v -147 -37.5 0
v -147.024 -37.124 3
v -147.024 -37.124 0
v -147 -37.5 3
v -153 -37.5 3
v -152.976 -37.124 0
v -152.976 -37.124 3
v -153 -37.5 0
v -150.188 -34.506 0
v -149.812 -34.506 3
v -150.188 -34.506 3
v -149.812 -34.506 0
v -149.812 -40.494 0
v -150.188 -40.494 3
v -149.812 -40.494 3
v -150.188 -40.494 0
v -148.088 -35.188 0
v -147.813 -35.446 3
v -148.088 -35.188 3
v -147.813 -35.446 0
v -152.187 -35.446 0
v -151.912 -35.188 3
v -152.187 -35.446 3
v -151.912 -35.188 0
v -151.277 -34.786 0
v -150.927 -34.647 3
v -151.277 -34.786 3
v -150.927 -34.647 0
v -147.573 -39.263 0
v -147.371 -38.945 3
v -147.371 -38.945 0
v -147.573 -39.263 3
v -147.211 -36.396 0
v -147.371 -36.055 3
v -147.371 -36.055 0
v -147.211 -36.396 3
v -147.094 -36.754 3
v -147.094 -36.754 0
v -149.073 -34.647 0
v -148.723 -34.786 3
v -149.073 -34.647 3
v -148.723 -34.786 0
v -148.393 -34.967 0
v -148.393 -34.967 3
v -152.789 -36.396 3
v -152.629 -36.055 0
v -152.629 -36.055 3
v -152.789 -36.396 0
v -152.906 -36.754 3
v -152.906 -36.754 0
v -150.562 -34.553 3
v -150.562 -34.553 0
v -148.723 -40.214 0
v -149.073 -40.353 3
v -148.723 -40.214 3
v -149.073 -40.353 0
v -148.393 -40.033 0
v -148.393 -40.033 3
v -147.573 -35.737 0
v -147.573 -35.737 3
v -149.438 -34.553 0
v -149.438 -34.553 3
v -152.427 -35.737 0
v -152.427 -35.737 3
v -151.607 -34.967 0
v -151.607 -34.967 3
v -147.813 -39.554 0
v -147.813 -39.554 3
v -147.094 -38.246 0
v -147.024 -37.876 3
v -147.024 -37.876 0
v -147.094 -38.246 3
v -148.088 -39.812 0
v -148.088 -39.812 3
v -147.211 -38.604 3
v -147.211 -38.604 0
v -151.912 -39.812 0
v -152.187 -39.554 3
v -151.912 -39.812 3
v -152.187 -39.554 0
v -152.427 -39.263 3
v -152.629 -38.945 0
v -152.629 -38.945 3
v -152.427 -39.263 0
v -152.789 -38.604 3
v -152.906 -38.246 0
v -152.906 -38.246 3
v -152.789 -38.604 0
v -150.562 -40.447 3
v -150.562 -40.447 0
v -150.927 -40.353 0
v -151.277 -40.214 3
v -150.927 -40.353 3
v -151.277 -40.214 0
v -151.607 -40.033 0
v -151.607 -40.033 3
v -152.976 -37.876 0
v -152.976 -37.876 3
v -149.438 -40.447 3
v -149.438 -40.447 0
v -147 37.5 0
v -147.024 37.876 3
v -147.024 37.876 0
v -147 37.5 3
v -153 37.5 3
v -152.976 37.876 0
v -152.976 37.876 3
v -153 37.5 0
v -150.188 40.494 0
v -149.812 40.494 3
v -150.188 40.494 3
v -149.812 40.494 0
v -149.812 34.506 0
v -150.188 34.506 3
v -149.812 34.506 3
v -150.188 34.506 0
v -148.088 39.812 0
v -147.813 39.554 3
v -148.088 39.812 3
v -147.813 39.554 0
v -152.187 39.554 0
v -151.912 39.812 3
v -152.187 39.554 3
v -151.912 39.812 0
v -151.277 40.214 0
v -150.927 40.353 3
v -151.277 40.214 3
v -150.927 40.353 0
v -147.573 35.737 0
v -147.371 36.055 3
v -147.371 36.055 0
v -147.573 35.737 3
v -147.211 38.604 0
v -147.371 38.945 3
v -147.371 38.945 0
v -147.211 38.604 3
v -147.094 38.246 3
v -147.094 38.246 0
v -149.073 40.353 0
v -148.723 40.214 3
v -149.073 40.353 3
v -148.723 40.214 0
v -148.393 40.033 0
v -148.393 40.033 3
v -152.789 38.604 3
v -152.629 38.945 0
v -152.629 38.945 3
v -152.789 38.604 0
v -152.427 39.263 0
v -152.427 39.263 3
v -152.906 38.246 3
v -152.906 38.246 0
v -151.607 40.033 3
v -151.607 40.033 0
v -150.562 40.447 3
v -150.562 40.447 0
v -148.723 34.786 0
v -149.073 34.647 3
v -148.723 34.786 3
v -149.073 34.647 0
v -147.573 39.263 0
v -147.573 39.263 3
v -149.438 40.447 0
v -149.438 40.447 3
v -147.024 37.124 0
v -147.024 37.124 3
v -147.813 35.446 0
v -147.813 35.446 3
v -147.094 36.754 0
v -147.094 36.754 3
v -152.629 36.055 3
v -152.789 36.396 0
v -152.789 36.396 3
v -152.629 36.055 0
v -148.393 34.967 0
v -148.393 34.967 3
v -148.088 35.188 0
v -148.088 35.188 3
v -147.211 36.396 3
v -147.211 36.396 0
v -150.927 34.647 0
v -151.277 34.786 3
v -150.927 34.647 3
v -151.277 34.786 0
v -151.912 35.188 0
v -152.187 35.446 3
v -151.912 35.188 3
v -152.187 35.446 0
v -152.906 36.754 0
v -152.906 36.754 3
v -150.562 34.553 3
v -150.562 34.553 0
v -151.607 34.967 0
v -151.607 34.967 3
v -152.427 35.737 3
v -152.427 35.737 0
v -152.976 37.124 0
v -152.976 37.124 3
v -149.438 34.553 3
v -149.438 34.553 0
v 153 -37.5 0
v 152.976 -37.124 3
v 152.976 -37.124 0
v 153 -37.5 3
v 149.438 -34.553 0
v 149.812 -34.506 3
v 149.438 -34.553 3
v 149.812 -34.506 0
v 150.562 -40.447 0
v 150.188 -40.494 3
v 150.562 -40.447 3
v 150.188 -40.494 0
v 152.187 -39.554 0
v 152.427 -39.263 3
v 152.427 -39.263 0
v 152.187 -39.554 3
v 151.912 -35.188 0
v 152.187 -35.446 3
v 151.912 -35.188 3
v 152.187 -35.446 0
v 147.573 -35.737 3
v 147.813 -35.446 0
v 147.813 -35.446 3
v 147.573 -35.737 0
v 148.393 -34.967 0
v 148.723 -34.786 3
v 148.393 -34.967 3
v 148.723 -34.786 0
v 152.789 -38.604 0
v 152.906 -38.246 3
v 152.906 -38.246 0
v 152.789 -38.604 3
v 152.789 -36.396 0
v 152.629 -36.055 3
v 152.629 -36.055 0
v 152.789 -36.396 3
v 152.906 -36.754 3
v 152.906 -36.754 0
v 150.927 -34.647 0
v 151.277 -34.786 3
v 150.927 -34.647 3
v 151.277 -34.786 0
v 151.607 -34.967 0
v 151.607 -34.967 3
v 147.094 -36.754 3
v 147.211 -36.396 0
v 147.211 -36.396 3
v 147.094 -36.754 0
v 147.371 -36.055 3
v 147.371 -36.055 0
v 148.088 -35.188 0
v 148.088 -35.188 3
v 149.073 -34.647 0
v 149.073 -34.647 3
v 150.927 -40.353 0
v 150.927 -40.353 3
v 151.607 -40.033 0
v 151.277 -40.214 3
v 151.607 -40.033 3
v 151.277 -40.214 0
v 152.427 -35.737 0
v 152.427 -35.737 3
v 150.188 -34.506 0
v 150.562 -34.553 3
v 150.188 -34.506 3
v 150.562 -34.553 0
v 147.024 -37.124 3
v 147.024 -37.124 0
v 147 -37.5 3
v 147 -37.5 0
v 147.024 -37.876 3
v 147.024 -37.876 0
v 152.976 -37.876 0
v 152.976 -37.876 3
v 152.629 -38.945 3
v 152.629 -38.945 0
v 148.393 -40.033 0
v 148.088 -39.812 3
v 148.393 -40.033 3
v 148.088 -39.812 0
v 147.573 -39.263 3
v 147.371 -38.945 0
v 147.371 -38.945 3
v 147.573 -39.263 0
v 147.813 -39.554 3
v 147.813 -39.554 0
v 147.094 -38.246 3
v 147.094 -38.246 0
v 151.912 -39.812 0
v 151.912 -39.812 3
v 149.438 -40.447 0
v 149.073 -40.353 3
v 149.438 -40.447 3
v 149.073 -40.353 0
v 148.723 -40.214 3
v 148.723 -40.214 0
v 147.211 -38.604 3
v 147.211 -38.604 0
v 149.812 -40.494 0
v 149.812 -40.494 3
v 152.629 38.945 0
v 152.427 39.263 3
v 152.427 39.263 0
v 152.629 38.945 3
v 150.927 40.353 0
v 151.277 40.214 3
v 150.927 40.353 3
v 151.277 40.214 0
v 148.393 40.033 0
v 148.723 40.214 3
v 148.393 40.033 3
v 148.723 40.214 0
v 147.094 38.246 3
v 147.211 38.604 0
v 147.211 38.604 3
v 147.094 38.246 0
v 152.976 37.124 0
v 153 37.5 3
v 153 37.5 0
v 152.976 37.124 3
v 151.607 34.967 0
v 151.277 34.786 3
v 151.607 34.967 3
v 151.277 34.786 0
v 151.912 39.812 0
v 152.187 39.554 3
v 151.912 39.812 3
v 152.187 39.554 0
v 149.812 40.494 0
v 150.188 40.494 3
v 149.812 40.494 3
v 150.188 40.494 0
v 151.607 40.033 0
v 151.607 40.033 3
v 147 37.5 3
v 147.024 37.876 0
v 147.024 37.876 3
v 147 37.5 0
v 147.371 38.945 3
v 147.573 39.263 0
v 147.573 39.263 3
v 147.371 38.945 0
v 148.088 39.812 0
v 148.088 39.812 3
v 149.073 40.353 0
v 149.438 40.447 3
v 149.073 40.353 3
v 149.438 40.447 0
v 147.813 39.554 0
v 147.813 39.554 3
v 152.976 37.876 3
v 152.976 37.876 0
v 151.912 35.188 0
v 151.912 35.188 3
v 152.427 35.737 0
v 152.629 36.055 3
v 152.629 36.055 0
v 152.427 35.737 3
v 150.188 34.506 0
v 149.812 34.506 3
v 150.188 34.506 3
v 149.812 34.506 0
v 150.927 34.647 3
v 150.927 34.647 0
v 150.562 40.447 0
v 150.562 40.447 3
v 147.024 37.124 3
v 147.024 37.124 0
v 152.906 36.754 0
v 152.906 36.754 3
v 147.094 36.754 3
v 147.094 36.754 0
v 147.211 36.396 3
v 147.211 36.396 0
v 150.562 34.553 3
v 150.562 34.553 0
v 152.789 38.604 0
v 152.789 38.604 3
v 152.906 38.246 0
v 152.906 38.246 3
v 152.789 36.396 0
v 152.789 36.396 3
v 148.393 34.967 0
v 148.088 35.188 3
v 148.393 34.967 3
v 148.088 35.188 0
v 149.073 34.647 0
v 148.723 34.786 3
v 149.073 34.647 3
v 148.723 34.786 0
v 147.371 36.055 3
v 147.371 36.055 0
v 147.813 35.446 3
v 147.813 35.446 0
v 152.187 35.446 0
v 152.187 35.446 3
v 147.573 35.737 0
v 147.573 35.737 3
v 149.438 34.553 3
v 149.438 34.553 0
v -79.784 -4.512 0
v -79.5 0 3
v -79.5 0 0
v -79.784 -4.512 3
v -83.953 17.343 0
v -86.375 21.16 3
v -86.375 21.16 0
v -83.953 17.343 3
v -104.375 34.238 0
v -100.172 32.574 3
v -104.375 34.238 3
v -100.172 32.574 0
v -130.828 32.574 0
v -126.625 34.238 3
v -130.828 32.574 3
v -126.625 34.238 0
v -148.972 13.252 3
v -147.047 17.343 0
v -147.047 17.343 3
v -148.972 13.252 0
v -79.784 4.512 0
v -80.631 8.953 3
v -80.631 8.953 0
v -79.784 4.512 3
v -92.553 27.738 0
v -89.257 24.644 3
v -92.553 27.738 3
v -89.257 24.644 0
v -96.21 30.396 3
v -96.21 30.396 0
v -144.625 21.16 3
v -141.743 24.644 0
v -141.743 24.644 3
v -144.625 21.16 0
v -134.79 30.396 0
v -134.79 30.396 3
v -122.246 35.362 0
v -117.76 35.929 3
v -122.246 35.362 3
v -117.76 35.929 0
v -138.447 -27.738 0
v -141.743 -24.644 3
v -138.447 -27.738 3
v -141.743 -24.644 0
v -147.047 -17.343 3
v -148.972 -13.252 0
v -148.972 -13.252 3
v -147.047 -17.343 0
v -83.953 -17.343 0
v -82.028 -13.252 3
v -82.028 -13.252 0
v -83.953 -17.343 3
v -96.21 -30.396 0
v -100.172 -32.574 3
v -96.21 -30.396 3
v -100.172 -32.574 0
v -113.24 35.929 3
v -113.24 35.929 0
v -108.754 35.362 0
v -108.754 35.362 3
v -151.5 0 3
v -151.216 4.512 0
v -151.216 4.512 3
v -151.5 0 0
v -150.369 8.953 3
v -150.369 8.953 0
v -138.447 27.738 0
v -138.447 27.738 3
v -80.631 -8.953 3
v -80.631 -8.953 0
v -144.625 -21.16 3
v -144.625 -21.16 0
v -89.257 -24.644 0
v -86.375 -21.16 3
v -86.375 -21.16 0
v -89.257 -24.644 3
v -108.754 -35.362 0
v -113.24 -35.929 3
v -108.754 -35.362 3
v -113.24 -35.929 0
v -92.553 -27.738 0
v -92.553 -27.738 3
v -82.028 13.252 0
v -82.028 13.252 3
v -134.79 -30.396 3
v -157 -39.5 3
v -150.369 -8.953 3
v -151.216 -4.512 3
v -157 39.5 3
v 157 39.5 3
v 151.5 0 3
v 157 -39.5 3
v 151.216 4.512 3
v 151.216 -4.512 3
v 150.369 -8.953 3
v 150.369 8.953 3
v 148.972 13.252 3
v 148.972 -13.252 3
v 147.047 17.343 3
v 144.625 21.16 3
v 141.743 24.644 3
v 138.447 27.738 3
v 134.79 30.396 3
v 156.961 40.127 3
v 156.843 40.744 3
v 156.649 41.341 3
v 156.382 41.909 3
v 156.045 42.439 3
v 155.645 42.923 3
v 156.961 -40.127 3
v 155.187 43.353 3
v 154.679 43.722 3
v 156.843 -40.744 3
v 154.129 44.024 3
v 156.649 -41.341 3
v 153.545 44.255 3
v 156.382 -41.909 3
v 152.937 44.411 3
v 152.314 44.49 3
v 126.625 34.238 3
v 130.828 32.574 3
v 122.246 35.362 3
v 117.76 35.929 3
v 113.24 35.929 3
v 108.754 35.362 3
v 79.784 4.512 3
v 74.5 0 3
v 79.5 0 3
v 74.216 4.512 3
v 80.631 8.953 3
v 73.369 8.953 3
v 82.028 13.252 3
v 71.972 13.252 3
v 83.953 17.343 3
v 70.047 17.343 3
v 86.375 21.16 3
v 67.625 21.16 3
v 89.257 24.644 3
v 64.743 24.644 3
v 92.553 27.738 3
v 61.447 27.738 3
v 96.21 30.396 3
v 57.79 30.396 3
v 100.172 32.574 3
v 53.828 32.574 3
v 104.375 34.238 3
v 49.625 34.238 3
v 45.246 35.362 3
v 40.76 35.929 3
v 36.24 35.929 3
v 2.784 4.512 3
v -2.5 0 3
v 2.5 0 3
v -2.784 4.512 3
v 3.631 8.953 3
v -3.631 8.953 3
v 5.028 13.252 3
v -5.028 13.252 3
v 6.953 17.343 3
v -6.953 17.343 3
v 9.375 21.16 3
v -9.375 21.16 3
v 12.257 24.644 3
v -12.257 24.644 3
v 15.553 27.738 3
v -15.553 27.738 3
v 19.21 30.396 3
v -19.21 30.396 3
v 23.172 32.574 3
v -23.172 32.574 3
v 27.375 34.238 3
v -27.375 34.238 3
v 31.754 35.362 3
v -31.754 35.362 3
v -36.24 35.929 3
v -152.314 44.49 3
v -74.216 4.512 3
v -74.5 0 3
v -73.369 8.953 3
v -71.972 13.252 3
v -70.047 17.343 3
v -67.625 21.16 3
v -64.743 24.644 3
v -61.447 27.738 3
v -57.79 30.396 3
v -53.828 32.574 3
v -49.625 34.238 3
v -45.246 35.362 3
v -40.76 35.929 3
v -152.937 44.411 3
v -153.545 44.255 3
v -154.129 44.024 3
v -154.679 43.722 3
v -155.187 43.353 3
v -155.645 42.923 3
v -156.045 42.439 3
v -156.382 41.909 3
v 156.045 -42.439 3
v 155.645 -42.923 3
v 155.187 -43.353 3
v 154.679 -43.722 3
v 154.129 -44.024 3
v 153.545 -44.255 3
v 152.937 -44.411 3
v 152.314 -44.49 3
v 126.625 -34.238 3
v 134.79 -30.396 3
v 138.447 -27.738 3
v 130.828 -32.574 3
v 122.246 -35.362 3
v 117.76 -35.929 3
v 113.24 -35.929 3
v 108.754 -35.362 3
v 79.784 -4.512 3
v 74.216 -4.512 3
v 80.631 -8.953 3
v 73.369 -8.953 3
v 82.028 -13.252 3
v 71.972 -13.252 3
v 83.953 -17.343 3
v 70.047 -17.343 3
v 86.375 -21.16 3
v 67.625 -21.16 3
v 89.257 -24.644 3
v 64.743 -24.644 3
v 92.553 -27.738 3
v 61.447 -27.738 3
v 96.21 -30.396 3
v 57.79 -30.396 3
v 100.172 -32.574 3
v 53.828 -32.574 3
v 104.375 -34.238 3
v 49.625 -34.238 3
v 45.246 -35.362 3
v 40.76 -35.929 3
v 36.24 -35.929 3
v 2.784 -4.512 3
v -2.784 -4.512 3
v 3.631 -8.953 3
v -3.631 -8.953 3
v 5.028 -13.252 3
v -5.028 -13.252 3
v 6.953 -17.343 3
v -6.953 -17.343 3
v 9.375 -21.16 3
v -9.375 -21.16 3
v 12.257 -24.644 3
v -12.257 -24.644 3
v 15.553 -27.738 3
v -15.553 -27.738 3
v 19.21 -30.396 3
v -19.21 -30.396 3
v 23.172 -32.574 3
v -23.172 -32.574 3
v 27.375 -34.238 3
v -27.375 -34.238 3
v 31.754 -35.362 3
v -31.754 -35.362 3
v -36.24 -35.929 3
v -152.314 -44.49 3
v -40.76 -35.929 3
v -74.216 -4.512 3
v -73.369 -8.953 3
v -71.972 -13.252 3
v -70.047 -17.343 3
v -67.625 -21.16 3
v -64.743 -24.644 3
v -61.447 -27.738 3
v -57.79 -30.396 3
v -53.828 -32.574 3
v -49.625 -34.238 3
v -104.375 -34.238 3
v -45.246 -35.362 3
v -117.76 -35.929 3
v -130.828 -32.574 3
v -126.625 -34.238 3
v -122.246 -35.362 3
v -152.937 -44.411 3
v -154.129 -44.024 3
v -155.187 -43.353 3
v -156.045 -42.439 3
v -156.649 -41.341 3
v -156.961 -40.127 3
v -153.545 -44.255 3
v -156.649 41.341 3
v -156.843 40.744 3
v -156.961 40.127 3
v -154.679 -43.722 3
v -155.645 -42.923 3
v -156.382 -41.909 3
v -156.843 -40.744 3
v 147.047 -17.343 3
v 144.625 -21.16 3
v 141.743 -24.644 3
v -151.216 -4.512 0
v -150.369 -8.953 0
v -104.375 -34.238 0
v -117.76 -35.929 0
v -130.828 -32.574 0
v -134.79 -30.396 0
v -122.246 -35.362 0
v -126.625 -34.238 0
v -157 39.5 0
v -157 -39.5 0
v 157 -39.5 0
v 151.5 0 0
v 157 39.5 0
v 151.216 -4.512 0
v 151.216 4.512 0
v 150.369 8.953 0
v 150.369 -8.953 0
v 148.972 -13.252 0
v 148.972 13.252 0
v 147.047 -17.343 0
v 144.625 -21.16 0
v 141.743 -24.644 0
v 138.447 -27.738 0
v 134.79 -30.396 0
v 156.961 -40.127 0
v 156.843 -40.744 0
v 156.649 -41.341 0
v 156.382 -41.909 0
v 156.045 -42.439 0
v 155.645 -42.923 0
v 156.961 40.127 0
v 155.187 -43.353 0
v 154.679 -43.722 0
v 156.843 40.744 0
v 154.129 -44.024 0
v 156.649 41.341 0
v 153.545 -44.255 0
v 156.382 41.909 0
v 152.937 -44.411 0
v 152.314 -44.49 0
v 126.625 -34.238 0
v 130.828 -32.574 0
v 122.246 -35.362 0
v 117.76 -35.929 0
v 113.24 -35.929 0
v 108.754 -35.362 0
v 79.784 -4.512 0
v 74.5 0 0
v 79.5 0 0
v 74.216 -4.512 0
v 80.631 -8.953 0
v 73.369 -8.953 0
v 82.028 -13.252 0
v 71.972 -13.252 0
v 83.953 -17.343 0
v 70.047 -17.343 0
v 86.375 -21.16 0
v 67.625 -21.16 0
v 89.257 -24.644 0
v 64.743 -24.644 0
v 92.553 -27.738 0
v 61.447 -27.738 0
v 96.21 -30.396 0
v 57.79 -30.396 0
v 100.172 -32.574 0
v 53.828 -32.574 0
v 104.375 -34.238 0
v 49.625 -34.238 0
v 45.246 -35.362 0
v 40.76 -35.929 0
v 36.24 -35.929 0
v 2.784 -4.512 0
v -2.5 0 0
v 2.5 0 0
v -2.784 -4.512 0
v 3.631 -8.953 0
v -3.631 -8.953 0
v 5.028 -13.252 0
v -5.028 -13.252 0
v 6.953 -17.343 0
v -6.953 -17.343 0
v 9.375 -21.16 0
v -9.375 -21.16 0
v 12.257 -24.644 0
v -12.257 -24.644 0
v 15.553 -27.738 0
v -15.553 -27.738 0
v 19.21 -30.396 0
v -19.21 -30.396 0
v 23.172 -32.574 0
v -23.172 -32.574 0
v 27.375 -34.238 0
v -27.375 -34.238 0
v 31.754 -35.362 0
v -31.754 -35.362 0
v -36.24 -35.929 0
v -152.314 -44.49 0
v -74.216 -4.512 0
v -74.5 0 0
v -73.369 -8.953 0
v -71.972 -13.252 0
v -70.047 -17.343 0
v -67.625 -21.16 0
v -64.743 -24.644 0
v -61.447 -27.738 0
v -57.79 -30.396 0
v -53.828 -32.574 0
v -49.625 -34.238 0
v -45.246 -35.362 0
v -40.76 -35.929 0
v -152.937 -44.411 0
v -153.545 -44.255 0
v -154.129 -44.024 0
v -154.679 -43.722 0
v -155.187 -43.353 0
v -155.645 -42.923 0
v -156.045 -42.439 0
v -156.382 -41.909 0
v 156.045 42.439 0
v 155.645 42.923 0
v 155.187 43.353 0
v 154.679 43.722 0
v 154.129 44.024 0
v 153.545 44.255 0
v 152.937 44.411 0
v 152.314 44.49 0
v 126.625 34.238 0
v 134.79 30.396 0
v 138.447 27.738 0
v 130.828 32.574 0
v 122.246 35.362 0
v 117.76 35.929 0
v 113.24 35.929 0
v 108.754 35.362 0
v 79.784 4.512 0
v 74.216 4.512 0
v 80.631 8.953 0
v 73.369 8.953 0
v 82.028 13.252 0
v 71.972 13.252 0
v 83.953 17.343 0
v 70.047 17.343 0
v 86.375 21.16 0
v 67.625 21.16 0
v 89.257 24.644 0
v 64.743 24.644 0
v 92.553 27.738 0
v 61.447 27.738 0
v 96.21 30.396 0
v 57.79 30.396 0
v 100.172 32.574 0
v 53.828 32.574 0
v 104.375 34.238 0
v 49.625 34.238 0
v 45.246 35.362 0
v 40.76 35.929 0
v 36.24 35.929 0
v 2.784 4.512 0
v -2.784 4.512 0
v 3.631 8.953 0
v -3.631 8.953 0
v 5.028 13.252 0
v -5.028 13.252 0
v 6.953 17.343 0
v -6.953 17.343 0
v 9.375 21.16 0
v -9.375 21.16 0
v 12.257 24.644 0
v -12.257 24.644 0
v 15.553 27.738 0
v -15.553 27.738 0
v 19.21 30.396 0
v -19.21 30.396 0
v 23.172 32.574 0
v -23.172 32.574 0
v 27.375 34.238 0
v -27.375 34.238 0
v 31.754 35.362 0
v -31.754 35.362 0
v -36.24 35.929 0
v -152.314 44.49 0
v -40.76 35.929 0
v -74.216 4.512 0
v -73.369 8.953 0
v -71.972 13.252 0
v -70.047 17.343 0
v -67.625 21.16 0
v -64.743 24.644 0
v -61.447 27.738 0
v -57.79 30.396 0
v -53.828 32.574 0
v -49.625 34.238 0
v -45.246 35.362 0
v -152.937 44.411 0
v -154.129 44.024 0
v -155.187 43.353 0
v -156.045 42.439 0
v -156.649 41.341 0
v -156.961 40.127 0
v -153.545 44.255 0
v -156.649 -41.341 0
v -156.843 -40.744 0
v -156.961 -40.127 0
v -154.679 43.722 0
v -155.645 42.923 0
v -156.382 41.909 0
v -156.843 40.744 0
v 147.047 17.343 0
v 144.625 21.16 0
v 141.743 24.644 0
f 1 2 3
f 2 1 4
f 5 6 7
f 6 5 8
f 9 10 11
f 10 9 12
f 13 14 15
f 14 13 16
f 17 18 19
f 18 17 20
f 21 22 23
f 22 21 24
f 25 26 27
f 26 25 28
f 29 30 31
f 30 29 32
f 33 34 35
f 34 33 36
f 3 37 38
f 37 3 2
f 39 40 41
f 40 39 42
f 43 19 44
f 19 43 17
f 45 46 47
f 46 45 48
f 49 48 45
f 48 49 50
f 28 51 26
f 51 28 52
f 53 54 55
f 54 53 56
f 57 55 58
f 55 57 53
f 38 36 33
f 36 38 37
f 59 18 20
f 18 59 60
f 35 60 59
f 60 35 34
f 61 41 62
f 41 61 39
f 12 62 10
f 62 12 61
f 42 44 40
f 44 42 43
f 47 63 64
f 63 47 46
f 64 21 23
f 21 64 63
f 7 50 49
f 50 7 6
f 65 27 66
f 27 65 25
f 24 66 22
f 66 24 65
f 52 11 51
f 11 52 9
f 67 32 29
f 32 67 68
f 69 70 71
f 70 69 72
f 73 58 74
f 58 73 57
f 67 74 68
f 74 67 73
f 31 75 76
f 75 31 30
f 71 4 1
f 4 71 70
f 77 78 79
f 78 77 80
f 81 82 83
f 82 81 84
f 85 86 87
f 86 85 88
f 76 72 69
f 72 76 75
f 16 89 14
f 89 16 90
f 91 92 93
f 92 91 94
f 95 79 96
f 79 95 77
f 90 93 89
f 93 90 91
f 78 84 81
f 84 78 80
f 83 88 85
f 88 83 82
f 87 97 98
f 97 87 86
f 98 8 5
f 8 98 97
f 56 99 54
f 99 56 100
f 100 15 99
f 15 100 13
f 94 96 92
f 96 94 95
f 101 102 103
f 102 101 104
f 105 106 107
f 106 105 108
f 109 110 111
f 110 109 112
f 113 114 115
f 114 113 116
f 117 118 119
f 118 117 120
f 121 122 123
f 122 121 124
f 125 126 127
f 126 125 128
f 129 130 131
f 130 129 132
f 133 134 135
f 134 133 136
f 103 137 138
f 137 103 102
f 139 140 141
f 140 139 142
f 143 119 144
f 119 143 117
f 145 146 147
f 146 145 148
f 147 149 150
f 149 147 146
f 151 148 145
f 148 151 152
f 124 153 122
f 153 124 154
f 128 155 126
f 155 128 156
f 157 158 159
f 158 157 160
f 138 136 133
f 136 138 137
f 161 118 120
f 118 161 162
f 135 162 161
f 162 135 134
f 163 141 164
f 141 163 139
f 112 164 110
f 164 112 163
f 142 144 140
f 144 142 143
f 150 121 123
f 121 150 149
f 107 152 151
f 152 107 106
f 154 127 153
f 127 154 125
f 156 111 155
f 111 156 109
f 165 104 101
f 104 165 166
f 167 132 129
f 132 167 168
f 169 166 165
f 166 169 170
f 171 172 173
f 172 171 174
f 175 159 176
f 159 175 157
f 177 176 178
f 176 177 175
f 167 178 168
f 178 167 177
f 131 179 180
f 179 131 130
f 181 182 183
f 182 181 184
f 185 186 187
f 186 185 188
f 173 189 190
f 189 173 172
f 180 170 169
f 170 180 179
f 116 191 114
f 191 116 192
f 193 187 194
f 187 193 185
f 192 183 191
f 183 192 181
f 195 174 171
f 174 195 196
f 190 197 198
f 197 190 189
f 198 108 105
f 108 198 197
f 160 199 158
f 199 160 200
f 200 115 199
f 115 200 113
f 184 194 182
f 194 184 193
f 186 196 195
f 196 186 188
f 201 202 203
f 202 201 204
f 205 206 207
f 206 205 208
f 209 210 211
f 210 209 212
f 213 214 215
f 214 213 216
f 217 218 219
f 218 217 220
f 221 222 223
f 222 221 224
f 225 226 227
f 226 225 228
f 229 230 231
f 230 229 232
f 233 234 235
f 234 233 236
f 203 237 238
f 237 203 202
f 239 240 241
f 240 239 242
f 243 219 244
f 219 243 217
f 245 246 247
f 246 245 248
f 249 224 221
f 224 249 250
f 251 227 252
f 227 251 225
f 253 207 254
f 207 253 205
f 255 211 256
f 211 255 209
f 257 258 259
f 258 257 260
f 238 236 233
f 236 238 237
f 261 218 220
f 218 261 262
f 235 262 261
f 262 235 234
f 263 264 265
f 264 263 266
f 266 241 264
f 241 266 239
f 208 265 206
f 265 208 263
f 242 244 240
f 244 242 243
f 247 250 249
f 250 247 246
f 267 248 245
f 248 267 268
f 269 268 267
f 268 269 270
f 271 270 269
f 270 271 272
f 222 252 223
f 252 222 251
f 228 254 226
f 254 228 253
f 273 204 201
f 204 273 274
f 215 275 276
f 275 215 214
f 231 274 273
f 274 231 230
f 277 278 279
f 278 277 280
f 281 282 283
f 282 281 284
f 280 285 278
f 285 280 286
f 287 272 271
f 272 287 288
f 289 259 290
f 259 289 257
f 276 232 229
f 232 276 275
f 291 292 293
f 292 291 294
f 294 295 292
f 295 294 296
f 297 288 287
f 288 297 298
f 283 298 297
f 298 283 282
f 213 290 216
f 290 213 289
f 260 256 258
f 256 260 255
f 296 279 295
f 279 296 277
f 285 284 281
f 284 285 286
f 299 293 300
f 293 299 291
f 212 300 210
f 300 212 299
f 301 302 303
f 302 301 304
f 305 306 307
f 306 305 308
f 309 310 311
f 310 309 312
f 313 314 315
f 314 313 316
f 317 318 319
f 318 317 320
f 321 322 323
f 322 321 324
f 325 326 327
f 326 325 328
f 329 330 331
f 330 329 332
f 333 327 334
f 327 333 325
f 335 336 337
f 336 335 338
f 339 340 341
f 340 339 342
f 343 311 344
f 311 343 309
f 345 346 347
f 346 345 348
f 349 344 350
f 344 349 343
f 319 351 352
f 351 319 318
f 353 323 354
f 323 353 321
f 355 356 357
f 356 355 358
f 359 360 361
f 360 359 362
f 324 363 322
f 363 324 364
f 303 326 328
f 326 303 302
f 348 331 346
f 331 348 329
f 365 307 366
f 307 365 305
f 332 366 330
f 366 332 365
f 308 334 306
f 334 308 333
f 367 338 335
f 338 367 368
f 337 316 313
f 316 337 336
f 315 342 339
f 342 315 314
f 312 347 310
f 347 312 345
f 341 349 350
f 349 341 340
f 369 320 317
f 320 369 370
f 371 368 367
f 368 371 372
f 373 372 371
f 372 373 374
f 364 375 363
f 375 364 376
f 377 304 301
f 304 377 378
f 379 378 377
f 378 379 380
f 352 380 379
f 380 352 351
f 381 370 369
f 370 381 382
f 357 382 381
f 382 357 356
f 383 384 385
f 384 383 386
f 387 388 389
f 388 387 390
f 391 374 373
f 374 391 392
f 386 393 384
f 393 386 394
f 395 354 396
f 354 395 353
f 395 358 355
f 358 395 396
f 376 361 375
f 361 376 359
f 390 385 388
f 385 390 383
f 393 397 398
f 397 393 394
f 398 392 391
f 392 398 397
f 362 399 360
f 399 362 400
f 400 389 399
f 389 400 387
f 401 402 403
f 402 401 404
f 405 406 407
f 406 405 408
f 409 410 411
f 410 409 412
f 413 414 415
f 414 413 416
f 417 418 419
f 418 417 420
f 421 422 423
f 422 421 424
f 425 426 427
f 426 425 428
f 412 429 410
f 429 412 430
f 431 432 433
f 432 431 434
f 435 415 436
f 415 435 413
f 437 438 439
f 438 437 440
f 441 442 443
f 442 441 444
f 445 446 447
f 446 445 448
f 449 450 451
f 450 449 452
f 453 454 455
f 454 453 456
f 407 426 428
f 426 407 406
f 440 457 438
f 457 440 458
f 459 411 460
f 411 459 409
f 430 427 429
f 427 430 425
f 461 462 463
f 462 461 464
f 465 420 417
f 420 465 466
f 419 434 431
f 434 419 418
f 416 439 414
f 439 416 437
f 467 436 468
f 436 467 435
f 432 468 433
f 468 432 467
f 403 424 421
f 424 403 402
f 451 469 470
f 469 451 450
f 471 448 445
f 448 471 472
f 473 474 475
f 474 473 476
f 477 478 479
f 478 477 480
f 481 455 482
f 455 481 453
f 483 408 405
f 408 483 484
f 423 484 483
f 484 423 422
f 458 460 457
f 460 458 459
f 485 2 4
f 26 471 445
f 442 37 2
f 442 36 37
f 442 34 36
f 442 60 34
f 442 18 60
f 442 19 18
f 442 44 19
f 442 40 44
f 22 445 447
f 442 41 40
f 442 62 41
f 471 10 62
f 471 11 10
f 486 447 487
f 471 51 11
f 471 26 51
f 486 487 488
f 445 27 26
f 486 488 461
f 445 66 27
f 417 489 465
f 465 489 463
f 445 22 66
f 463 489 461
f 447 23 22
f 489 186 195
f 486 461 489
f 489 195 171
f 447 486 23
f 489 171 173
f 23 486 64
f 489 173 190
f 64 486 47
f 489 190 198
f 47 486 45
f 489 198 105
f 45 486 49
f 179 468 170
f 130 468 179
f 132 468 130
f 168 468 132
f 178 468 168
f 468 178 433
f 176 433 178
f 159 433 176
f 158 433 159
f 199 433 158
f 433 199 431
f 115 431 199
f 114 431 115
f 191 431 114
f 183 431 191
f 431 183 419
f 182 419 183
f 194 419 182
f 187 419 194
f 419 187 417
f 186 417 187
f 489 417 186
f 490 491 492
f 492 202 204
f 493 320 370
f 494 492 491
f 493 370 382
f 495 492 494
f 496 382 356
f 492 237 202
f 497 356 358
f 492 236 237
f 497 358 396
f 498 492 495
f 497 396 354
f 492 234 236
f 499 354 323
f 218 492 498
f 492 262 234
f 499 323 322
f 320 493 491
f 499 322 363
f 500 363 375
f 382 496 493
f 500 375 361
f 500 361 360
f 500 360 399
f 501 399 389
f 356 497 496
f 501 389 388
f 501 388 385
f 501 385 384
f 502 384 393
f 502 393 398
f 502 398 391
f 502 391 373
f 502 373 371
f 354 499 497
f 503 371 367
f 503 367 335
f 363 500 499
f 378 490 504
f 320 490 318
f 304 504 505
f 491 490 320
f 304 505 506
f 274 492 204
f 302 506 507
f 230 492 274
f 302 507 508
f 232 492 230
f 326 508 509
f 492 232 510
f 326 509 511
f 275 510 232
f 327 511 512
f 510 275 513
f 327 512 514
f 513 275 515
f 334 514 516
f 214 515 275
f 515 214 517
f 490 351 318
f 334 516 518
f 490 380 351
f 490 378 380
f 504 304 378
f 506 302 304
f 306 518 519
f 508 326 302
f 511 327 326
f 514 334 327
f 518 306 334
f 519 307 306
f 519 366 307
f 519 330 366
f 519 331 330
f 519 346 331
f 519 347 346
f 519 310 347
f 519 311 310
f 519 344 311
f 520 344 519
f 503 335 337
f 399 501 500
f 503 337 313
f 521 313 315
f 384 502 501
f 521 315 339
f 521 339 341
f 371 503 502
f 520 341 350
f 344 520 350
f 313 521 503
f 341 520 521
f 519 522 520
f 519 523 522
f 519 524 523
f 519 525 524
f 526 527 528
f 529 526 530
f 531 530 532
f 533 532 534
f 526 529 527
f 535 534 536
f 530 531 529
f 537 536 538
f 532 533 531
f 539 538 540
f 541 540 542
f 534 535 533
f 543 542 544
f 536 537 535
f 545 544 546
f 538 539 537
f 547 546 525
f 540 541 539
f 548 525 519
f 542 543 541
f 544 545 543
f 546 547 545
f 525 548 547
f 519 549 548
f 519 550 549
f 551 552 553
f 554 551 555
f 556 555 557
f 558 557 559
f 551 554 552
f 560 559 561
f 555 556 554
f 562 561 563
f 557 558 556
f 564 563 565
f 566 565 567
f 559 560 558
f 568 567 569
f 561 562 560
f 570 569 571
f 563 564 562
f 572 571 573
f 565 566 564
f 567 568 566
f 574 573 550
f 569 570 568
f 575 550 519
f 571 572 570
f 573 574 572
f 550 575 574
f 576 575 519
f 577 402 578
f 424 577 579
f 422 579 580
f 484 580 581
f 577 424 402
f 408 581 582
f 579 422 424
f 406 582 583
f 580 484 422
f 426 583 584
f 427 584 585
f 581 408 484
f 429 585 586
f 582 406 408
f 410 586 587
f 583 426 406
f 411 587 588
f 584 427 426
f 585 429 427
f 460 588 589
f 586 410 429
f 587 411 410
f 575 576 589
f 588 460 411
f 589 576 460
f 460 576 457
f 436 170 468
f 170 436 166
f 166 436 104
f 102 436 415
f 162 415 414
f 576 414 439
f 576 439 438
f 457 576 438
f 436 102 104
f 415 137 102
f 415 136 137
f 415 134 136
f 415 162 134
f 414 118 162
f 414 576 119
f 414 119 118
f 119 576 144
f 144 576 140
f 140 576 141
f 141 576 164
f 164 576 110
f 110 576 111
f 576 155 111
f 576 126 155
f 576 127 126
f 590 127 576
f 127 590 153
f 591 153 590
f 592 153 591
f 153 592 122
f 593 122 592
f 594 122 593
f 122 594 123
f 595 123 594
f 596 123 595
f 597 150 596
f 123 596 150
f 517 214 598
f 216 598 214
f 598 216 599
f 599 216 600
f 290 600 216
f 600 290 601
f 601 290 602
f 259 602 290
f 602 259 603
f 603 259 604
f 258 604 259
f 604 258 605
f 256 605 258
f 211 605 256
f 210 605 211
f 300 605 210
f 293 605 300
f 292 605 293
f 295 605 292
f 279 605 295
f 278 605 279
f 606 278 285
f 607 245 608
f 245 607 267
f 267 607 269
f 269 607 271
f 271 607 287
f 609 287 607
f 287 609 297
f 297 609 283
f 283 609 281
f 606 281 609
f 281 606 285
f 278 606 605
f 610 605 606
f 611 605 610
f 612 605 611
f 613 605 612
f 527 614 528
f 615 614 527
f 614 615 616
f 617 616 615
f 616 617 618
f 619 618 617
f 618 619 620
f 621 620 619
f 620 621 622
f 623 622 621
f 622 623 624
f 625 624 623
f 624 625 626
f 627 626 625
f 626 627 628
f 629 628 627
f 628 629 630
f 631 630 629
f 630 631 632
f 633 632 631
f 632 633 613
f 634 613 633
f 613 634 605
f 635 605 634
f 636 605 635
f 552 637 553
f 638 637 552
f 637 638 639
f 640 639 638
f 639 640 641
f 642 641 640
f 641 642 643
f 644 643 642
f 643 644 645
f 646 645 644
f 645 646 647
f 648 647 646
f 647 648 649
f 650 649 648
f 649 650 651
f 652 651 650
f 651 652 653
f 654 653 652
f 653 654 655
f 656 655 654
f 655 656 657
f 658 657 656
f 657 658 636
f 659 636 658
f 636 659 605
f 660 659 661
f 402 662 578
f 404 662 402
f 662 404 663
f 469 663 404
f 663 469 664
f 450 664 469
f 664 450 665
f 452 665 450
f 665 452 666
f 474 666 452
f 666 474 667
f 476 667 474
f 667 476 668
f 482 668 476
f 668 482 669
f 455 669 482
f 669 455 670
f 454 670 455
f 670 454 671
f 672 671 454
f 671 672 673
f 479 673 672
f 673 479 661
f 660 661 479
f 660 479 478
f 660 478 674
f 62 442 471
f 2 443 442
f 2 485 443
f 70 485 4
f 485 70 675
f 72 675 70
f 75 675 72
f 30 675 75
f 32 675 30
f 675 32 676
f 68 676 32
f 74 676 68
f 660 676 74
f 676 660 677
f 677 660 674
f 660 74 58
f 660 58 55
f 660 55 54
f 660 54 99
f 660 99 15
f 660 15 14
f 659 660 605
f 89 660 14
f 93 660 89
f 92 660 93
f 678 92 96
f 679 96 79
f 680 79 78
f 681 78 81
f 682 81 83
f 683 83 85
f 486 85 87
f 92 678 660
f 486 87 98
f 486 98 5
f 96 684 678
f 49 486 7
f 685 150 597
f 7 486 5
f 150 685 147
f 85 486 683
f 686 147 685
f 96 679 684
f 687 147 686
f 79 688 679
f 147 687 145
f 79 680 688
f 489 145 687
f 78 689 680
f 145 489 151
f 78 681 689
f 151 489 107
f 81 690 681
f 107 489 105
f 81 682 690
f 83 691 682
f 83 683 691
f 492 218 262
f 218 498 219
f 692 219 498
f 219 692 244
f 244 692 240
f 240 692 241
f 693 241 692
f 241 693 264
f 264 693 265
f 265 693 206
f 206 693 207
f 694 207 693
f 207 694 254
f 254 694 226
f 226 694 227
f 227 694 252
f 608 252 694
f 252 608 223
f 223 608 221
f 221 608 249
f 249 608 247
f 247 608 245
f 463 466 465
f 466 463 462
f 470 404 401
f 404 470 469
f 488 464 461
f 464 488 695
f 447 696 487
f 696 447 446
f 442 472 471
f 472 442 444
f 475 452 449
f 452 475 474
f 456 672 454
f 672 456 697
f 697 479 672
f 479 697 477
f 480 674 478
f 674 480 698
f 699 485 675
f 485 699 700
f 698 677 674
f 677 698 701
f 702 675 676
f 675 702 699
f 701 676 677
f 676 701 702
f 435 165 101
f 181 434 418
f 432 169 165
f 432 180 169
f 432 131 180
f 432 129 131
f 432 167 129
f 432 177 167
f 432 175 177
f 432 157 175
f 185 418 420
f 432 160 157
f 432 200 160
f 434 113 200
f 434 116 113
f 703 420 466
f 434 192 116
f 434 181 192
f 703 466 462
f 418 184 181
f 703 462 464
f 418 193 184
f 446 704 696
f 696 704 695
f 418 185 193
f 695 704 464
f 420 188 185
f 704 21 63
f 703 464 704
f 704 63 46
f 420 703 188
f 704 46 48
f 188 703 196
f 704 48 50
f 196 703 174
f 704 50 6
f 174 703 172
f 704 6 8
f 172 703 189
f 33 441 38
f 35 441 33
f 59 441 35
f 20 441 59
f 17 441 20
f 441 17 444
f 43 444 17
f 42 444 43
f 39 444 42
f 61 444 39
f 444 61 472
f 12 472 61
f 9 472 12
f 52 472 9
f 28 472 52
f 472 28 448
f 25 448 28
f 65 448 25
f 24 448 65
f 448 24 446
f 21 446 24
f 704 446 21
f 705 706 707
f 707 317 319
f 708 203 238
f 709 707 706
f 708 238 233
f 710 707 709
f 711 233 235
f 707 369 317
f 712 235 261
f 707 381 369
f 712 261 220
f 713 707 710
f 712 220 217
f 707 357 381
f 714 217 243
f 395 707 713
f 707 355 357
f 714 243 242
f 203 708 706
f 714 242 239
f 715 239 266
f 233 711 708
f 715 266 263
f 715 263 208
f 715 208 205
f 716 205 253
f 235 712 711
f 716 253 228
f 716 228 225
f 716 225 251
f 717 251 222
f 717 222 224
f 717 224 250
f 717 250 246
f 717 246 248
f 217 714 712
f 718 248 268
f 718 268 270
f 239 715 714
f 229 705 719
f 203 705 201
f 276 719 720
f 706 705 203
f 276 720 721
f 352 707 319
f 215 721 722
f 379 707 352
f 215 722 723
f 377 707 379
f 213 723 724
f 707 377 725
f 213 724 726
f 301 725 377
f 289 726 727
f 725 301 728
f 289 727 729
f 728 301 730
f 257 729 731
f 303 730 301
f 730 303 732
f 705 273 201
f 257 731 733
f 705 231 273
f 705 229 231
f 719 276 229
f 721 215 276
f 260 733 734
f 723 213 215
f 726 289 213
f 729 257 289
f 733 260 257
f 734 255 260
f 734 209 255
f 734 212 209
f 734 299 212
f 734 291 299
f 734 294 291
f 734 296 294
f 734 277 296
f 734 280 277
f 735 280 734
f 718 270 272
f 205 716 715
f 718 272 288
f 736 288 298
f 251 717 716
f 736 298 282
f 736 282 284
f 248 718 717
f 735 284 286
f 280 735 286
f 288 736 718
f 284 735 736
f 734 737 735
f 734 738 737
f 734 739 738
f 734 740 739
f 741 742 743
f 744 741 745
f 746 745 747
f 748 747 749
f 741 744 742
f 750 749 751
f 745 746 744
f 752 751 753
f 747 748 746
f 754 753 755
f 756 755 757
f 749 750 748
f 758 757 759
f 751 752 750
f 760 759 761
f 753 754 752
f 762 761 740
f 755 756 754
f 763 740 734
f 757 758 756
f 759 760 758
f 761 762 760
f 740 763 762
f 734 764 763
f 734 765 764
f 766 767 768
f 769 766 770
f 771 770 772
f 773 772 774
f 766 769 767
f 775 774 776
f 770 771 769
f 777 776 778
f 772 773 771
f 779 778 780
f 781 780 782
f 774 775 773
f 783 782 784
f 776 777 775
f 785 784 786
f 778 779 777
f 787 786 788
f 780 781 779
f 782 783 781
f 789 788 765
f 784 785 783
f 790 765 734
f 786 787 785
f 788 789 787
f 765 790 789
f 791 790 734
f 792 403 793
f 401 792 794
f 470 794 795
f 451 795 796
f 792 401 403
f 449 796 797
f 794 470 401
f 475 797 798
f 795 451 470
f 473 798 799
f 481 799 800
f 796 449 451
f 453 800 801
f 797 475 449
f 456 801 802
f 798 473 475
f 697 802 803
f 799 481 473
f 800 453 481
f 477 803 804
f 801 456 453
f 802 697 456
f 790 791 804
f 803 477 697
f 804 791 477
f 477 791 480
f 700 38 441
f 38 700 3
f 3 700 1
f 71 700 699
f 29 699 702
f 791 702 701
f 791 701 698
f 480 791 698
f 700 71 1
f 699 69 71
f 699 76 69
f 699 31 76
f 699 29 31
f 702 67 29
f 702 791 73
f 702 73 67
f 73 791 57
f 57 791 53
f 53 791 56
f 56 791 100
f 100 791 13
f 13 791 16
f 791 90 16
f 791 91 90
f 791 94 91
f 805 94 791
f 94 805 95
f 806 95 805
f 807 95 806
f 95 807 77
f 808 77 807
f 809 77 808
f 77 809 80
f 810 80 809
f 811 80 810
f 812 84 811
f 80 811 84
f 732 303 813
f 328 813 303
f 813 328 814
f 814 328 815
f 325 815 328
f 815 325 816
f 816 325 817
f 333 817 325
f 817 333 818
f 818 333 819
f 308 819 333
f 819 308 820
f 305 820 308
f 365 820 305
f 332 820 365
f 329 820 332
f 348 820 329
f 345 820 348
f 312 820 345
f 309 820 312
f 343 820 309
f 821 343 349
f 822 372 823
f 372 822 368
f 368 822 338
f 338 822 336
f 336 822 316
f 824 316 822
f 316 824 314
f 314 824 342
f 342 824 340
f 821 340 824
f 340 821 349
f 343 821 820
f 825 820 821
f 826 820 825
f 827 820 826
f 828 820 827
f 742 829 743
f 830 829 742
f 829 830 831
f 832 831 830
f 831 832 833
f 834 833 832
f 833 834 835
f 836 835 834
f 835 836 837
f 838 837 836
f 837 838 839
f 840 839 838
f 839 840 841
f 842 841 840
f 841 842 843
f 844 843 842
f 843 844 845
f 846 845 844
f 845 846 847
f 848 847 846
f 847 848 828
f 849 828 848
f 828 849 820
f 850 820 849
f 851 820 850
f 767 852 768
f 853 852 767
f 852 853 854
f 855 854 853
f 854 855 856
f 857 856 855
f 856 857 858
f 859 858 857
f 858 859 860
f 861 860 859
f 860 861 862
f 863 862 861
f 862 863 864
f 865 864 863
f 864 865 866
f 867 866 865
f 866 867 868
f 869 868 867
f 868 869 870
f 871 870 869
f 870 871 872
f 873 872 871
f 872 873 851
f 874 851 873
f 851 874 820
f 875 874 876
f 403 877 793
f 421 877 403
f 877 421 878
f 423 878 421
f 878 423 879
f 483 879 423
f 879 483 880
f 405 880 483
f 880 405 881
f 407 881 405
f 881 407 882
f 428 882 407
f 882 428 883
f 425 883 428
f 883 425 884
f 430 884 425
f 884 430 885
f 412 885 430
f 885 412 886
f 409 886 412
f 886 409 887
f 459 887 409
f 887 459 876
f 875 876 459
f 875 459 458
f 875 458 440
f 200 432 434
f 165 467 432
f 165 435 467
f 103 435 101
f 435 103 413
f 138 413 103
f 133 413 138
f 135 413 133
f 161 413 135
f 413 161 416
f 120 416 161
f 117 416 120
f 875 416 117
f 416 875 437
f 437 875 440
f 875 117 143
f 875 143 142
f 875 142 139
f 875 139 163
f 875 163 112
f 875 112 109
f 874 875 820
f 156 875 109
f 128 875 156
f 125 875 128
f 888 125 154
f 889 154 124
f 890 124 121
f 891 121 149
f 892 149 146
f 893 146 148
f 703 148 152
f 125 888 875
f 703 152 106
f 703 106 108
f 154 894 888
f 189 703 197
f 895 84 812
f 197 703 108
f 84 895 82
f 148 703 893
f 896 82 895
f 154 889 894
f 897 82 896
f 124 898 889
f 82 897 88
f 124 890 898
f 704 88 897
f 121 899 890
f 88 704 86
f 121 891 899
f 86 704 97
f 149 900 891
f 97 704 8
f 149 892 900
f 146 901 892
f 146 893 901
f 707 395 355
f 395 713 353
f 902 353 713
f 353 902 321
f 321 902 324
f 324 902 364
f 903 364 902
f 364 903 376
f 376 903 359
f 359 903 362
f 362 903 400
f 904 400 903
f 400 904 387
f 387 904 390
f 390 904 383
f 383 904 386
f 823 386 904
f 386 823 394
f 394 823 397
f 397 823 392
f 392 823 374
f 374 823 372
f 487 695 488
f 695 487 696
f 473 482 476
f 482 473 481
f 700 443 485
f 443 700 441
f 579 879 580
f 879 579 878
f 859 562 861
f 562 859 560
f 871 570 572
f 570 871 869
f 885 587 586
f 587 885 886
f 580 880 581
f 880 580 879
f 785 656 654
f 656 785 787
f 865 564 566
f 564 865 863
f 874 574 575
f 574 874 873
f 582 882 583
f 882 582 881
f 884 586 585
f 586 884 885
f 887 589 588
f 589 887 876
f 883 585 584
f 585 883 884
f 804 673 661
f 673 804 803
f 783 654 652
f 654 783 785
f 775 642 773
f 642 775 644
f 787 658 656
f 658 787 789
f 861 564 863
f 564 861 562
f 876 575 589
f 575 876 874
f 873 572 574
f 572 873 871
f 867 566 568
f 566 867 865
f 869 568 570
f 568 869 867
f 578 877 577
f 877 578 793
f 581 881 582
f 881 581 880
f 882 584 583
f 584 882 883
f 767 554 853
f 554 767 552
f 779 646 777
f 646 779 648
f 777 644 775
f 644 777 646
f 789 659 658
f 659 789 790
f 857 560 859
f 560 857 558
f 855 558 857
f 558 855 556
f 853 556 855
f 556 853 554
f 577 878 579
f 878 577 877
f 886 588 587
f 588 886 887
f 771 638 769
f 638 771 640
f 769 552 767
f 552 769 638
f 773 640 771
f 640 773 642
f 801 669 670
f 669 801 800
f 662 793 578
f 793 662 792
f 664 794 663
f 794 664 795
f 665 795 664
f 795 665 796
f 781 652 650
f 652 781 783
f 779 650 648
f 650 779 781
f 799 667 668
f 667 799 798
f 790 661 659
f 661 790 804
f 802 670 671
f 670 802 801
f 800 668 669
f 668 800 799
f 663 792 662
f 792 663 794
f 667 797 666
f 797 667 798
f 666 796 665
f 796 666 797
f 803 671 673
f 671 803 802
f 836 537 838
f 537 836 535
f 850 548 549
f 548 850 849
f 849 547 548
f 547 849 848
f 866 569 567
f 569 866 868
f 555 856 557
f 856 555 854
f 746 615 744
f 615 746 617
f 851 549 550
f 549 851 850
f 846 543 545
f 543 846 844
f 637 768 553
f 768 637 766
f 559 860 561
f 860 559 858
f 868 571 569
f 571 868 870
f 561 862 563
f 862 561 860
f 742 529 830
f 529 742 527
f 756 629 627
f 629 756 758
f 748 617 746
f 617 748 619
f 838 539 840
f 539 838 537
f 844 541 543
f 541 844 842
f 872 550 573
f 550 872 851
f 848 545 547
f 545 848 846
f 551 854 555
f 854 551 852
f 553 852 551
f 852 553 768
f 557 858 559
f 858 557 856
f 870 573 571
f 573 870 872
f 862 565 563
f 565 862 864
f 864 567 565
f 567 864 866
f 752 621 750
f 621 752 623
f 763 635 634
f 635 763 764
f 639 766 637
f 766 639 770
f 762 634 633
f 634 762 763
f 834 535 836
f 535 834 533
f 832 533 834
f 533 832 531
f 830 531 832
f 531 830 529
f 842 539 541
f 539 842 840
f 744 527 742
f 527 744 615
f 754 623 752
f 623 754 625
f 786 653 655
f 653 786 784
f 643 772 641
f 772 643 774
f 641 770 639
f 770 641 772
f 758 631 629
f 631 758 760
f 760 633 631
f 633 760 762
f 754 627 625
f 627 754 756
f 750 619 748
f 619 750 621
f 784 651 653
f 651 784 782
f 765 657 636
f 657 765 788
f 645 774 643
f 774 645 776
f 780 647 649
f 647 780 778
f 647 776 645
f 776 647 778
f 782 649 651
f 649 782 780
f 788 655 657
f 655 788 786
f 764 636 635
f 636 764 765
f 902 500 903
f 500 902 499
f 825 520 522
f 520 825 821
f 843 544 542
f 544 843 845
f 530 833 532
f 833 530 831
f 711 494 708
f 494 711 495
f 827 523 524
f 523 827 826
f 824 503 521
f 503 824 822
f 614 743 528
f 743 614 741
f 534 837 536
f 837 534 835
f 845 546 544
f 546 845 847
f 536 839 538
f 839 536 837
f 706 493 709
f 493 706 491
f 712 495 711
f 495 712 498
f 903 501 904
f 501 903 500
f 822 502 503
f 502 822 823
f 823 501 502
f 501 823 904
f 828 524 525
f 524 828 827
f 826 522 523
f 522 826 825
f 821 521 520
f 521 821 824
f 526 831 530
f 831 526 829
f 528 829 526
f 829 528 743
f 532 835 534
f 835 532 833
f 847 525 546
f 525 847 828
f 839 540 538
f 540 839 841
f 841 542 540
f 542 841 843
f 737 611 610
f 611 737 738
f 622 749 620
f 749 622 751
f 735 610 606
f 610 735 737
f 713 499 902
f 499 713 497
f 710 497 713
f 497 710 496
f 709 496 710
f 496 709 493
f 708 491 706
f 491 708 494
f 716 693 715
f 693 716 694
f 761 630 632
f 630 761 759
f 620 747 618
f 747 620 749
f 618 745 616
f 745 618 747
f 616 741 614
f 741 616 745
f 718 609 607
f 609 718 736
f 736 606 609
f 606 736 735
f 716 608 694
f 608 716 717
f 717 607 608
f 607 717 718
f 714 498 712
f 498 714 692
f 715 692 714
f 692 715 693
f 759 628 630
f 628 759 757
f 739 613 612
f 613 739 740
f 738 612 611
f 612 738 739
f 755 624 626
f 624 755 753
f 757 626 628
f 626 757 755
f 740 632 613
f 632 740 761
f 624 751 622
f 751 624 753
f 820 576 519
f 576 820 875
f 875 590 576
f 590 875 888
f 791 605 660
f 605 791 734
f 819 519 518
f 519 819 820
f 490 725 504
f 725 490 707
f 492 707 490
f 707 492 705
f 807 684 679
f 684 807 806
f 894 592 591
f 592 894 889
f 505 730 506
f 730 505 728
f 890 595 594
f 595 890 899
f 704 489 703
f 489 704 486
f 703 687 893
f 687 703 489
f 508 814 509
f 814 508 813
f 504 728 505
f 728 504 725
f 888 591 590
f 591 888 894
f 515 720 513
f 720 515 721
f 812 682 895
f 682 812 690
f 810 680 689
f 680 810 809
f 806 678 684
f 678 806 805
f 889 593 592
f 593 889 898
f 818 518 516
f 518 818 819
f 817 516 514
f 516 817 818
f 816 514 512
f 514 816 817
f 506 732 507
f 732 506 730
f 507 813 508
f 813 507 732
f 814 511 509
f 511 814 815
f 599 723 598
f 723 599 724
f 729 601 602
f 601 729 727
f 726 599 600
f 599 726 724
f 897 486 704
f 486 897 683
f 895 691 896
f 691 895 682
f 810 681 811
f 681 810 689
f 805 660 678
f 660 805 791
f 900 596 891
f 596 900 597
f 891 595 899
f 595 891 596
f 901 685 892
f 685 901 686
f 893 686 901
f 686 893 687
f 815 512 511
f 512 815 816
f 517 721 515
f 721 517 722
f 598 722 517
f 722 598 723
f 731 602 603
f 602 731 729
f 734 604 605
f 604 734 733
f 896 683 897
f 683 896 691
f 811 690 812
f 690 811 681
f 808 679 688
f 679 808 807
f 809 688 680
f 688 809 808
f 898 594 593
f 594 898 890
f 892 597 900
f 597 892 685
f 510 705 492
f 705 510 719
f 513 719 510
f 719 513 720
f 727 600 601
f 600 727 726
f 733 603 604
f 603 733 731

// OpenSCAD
$fn = 50;


difference() {
	union() {
		hull() {
			translate(v = [-152.0000000000, 39.5000000000, 0]) {
				cylinder(h = 3, r = 5);
			}
			translate(v = [152.0000000000, 39.5000000000, 0]) {
				cylinder(h = 3, r = 5);
			}
			translate(v = [-152.0000000000, -39.5000000000, 0]) {
				cylinder(h = 3, r = 5);
			}
			translate(v = [152.0000000000, -39.5000000000, 0]) {
				cylinder(h = 3, r = 5);
			}
		}
	}
	union() {
		#translate(v = [-150.0000000000, -37.5000000000, -100.0000000000]) {
			cylinder(h = 200, r = 3.0000000000);
		}
		#translate(v = [-150.0000000000, 37.5000000000, -100.0000000000]) {
			cylinder(h = 200, r = 3.0000000000);
		}
		#translate(v = [150.0000000000, -37.5000000000, -100.0000000000]) {
			cylinder(h = 200, r = 3.0000000000);
		}
		#translate(v = [150.0000000000, 37.5000000000, -100.0000000000]) {
			cylinder(h = 200, r = 3.0000000000);
		}
		#translate(v = [-115.5000000000, 0, 0]) {
			cylinder(h = 3, r = 36.0000000000);
		}
		#translate(v = [-38.5000000000, 0, 0]) {
			cylinder(h = 3, r = 36.0000000000);
		}
		#translate(v = [38.5000000000, 0, 0]) {
			cylinder(h = 3, r = 36.0000000000);
		}
		#translate(v = [115.5000000000, 0, 0]) {
			cylinder(h = 3, r = 36.0000000000);
		}
	}
}
